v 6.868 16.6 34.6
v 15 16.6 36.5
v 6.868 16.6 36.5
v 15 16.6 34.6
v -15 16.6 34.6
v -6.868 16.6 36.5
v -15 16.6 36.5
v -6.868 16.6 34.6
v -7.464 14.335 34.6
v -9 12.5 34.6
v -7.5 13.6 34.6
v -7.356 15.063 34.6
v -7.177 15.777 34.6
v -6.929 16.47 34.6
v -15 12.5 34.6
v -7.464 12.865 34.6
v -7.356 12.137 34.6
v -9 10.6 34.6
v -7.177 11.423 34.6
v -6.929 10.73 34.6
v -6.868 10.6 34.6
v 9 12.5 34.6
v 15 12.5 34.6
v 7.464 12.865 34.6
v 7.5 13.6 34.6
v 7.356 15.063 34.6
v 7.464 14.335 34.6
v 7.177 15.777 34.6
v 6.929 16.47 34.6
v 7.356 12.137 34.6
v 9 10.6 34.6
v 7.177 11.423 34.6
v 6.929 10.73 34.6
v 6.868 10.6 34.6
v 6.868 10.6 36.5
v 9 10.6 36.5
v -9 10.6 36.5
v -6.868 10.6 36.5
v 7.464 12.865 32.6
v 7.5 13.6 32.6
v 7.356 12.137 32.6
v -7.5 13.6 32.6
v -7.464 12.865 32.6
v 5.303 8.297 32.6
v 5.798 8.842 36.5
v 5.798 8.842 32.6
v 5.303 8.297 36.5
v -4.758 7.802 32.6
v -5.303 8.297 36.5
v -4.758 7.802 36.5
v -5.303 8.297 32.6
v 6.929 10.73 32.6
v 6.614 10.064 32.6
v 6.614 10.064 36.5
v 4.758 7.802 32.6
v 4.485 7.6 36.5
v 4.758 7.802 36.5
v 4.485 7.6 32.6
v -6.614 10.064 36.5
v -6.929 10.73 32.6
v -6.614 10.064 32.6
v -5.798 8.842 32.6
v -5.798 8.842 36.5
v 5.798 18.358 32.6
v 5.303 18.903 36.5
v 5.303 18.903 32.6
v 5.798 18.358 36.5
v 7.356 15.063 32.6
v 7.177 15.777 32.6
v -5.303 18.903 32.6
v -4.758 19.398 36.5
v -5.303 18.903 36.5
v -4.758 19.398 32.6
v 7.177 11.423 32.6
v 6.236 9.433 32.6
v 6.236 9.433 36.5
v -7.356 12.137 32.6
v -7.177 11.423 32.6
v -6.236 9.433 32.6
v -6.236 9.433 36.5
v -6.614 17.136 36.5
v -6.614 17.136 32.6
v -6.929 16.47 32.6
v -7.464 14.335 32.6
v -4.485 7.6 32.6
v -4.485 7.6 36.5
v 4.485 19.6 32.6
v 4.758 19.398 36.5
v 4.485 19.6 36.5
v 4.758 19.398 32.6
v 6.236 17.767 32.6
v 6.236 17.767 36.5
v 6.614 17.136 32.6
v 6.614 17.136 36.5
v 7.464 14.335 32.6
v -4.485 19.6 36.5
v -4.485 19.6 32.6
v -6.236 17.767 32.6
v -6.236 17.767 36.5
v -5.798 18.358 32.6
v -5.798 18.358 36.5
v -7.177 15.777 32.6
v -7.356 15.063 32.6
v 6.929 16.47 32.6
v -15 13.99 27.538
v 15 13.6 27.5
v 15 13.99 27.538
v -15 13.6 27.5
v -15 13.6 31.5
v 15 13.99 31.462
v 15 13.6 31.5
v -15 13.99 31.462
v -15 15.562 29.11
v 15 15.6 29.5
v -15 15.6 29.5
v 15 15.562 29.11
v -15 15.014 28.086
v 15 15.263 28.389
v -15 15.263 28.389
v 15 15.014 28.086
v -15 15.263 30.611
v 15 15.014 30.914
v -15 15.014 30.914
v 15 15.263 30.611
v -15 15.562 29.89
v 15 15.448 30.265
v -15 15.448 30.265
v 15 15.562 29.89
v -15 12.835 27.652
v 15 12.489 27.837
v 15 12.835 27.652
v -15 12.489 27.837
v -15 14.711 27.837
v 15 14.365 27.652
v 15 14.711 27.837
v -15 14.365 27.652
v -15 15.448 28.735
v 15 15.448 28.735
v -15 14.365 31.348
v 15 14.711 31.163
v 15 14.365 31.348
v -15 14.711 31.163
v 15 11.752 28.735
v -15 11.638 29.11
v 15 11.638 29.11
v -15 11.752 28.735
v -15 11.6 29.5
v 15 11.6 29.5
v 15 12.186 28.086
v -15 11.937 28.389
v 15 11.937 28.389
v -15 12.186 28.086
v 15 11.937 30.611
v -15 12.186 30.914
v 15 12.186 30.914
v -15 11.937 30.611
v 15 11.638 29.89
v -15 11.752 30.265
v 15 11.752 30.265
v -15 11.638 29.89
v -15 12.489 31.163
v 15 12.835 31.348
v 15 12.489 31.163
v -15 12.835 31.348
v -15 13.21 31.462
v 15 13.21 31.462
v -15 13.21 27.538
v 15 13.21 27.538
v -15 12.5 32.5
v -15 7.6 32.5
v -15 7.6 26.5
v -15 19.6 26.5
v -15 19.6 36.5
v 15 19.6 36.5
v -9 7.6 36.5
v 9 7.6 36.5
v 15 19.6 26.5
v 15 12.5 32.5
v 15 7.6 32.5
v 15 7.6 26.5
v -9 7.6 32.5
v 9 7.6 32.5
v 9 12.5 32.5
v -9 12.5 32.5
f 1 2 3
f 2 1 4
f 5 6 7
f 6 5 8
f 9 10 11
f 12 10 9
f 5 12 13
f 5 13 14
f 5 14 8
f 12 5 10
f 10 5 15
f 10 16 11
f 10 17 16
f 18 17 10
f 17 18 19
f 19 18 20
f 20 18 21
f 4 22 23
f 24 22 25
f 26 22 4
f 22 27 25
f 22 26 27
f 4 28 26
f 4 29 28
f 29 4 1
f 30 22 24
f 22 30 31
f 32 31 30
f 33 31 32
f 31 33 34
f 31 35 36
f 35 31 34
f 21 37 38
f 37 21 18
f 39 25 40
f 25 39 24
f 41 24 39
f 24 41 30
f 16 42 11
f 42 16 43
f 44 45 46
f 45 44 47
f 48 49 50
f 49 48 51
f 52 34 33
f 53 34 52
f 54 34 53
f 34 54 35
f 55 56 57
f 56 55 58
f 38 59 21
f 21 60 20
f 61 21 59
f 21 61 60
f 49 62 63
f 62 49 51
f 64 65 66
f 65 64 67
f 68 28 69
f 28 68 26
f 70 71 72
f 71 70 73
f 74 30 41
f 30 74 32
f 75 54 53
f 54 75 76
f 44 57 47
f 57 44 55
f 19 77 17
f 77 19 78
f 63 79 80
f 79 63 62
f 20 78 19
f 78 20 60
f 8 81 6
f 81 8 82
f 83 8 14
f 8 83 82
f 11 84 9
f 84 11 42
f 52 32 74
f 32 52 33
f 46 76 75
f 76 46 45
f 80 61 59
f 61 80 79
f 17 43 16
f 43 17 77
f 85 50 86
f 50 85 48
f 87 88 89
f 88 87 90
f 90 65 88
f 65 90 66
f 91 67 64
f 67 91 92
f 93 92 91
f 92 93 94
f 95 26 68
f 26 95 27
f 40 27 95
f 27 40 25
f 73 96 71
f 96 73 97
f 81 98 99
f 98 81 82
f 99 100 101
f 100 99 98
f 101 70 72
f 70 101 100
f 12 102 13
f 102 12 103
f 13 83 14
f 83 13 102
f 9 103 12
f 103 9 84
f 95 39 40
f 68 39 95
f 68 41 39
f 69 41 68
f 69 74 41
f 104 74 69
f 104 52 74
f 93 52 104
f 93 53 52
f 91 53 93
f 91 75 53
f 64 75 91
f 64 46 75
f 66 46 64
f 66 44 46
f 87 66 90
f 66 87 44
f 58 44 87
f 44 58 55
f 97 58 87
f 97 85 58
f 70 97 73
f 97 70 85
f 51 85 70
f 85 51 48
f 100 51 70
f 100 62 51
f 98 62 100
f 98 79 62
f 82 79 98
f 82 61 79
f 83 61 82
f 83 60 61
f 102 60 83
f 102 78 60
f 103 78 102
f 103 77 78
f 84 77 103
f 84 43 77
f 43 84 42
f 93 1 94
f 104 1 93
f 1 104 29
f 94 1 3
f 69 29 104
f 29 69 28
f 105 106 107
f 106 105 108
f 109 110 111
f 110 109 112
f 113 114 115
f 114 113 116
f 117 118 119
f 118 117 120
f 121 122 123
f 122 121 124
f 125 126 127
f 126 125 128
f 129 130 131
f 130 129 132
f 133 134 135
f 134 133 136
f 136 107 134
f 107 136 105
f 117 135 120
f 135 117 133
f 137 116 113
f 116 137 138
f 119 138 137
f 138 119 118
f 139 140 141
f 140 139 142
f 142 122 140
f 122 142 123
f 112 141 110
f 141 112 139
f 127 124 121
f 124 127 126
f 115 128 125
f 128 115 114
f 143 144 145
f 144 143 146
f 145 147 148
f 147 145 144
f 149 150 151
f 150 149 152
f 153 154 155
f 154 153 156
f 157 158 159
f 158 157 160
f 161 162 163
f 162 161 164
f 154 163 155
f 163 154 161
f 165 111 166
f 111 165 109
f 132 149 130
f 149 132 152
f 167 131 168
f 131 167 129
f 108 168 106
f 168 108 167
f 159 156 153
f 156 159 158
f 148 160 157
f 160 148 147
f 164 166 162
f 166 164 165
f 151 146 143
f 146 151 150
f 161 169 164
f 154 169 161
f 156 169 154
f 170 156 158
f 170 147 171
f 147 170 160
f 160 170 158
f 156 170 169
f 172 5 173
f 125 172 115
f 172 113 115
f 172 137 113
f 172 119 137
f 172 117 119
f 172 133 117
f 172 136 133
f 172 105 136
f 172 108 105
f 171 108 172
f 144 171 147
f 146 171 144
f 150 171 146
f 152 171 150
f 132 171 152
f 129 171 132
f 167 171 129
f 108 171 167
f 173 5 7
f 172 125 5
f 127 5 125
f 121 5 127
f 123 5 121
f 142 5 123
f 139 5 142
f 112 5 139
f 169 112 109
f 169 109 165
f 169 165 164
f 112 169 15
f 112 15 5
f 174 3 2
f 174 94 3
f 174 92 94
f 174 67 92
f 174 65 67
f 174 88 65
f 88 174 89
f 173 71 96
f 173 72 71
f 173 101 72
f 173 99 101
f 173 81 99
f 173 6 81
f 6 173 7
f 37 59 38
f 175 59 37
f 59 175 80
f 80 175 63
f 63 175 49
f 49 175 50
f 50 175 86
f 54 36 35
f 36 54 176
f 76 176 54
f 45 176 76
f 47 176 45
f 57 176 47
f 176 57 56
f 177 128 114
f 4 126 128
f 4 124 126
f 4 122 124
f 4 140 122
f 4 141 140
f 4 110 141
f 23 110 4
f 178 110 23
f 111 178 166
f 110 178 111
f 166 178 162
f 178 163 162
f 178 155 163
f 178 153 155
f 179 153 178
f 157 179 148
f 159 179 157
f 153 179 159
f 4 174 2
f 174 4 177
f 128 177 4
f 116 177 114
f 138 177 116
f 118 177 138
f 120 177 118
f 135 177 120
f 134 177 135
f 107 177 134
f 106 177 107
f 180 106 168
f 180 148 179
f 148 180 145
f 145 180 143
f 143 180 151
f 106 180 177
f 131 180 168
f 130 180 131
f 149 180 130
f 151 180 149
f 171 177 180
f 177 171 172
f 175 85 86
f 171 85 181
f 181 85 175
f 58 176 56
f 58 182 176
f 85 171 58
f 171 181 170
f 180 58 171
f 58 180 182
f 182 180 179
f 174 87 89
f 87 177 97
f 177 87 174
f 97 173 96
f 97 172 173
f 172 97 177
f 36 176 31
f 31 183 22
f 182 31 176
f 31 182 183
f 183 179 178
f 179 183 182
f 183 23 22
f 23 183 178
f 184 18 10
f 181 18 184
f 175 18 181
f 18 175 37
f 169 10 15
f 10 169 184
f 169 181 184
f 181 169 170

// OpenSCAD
union() // SharpSCAD generated scene: buttonsandwich
{
  { // module: buttonsandwich
    color( c= "white" )
    {
      translate( v= [ 0, 13.6, 26.5 ] )
      {
        difference()
        {
          translate( v= [ 0, 0, 5 ] )
          {
            cube( size= [ 30, 12, 10 ], center= true );
          }
          translate( v= [ 0, 0, 11.1 ] )
          {
            { // module: button
              color( c= "yellow" )
              {
                union()
                {
                  translate( v= [ 0, 0, -1.5 ] )
                  {
                    cube( size= [ 31, 6, 3 ], center= true );
                  }
                  rotate( a= [ 180, 0, 0 ] )
                  {
                    cylinder( r= 7.5, $fn= 64, h= 5 );
                  }
                  cylinder( r= 4.5, $fn= 64, h= 5 );
                }
              }
            }
          }
          mirror( v= [ 0, 1, 0 ] )
          {
            translate( v= [ 9, 1.1, 6 ] )
            {
              cube( size= 8 );
            }
          }
          mirror( v= [ 0, 1, 0 ] )
          {
            translate( v= [ -17, 1.1, 6 ] )
            {
              cube( size= 8 );
            }
          }
          translate( v= [ -30, 0, 3 ] )
          {
            rotate( a= [ 0, 90, 0 ] )
            {
              union()
              {
                translate( v= [ 0, 0, 56.3 ] )
                {
                  cylinder( r= 3.2, $fn= 32, h= 4 );
                }
                cylinder( r= 2, $fn= 32, h= 60.1 );
              }
            }
          }
        }
      }
    }
  }
}
